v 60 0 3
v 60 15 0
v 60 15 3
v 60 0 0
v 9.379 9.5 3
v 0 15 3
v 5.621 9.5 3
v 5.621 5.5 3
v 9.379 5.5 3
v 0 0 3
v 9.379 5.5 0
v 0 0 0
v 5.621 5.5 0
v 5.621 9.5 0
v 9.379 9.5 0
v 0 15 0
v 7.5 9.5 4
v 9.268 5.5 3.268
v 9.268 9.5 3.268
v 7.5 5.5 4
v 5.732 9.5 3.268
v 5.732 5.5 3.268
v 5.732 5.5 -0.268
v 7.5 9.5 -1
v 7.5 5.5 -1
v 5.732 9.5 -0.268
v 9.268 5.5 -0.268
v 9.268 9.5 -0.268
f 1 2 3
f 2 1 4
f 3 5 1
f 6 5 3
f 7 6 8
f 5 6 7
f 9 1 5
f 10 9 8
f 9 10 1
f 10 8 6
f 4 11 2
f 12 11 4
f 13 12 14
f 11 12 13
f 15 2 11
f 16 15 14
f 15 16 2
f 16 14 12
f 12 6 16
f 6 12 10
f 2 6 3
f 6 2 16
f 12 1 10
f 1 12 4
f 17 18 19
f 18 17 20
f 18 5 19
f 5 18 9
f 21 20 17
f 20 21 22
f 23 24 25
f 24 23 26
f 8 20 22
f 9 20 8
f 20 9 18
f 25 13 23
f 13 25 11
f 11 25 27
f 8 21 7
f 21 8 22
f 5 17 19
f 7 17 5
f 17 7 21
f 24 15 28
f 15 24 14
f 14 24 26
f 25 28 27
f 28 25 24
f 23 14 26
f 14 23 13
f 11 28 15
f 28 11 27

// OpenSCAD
// Parameters for the flat bar with a hole
bar_length = 60;       // Length of the bar
bar_width = 15;        // Width of the bar
bar_thickness = 3;     // Thickness of the bar
hole_diameter = 5;     // Diameter of the hole
hole_offset = 7.5;     // Distance from the center of the hole to the end of the bar

// Main module to create the flat bar with a hole
module flat_bar_with_hole() {
    // Create the rectangular bar
    cube([bar_length, bar_width, bar_thickness], center = false);
    
    // Subtract the hole
    translate([hole_offset, bar_width / 2, bar_thickness / 2])
        rotate([90, 0, 0])
        cylinder(r = hole_diameter / 2, h = bar_thickness + 1, center = true);
}

// Render the flat bar with a hole
flat_bar_with_hole();
